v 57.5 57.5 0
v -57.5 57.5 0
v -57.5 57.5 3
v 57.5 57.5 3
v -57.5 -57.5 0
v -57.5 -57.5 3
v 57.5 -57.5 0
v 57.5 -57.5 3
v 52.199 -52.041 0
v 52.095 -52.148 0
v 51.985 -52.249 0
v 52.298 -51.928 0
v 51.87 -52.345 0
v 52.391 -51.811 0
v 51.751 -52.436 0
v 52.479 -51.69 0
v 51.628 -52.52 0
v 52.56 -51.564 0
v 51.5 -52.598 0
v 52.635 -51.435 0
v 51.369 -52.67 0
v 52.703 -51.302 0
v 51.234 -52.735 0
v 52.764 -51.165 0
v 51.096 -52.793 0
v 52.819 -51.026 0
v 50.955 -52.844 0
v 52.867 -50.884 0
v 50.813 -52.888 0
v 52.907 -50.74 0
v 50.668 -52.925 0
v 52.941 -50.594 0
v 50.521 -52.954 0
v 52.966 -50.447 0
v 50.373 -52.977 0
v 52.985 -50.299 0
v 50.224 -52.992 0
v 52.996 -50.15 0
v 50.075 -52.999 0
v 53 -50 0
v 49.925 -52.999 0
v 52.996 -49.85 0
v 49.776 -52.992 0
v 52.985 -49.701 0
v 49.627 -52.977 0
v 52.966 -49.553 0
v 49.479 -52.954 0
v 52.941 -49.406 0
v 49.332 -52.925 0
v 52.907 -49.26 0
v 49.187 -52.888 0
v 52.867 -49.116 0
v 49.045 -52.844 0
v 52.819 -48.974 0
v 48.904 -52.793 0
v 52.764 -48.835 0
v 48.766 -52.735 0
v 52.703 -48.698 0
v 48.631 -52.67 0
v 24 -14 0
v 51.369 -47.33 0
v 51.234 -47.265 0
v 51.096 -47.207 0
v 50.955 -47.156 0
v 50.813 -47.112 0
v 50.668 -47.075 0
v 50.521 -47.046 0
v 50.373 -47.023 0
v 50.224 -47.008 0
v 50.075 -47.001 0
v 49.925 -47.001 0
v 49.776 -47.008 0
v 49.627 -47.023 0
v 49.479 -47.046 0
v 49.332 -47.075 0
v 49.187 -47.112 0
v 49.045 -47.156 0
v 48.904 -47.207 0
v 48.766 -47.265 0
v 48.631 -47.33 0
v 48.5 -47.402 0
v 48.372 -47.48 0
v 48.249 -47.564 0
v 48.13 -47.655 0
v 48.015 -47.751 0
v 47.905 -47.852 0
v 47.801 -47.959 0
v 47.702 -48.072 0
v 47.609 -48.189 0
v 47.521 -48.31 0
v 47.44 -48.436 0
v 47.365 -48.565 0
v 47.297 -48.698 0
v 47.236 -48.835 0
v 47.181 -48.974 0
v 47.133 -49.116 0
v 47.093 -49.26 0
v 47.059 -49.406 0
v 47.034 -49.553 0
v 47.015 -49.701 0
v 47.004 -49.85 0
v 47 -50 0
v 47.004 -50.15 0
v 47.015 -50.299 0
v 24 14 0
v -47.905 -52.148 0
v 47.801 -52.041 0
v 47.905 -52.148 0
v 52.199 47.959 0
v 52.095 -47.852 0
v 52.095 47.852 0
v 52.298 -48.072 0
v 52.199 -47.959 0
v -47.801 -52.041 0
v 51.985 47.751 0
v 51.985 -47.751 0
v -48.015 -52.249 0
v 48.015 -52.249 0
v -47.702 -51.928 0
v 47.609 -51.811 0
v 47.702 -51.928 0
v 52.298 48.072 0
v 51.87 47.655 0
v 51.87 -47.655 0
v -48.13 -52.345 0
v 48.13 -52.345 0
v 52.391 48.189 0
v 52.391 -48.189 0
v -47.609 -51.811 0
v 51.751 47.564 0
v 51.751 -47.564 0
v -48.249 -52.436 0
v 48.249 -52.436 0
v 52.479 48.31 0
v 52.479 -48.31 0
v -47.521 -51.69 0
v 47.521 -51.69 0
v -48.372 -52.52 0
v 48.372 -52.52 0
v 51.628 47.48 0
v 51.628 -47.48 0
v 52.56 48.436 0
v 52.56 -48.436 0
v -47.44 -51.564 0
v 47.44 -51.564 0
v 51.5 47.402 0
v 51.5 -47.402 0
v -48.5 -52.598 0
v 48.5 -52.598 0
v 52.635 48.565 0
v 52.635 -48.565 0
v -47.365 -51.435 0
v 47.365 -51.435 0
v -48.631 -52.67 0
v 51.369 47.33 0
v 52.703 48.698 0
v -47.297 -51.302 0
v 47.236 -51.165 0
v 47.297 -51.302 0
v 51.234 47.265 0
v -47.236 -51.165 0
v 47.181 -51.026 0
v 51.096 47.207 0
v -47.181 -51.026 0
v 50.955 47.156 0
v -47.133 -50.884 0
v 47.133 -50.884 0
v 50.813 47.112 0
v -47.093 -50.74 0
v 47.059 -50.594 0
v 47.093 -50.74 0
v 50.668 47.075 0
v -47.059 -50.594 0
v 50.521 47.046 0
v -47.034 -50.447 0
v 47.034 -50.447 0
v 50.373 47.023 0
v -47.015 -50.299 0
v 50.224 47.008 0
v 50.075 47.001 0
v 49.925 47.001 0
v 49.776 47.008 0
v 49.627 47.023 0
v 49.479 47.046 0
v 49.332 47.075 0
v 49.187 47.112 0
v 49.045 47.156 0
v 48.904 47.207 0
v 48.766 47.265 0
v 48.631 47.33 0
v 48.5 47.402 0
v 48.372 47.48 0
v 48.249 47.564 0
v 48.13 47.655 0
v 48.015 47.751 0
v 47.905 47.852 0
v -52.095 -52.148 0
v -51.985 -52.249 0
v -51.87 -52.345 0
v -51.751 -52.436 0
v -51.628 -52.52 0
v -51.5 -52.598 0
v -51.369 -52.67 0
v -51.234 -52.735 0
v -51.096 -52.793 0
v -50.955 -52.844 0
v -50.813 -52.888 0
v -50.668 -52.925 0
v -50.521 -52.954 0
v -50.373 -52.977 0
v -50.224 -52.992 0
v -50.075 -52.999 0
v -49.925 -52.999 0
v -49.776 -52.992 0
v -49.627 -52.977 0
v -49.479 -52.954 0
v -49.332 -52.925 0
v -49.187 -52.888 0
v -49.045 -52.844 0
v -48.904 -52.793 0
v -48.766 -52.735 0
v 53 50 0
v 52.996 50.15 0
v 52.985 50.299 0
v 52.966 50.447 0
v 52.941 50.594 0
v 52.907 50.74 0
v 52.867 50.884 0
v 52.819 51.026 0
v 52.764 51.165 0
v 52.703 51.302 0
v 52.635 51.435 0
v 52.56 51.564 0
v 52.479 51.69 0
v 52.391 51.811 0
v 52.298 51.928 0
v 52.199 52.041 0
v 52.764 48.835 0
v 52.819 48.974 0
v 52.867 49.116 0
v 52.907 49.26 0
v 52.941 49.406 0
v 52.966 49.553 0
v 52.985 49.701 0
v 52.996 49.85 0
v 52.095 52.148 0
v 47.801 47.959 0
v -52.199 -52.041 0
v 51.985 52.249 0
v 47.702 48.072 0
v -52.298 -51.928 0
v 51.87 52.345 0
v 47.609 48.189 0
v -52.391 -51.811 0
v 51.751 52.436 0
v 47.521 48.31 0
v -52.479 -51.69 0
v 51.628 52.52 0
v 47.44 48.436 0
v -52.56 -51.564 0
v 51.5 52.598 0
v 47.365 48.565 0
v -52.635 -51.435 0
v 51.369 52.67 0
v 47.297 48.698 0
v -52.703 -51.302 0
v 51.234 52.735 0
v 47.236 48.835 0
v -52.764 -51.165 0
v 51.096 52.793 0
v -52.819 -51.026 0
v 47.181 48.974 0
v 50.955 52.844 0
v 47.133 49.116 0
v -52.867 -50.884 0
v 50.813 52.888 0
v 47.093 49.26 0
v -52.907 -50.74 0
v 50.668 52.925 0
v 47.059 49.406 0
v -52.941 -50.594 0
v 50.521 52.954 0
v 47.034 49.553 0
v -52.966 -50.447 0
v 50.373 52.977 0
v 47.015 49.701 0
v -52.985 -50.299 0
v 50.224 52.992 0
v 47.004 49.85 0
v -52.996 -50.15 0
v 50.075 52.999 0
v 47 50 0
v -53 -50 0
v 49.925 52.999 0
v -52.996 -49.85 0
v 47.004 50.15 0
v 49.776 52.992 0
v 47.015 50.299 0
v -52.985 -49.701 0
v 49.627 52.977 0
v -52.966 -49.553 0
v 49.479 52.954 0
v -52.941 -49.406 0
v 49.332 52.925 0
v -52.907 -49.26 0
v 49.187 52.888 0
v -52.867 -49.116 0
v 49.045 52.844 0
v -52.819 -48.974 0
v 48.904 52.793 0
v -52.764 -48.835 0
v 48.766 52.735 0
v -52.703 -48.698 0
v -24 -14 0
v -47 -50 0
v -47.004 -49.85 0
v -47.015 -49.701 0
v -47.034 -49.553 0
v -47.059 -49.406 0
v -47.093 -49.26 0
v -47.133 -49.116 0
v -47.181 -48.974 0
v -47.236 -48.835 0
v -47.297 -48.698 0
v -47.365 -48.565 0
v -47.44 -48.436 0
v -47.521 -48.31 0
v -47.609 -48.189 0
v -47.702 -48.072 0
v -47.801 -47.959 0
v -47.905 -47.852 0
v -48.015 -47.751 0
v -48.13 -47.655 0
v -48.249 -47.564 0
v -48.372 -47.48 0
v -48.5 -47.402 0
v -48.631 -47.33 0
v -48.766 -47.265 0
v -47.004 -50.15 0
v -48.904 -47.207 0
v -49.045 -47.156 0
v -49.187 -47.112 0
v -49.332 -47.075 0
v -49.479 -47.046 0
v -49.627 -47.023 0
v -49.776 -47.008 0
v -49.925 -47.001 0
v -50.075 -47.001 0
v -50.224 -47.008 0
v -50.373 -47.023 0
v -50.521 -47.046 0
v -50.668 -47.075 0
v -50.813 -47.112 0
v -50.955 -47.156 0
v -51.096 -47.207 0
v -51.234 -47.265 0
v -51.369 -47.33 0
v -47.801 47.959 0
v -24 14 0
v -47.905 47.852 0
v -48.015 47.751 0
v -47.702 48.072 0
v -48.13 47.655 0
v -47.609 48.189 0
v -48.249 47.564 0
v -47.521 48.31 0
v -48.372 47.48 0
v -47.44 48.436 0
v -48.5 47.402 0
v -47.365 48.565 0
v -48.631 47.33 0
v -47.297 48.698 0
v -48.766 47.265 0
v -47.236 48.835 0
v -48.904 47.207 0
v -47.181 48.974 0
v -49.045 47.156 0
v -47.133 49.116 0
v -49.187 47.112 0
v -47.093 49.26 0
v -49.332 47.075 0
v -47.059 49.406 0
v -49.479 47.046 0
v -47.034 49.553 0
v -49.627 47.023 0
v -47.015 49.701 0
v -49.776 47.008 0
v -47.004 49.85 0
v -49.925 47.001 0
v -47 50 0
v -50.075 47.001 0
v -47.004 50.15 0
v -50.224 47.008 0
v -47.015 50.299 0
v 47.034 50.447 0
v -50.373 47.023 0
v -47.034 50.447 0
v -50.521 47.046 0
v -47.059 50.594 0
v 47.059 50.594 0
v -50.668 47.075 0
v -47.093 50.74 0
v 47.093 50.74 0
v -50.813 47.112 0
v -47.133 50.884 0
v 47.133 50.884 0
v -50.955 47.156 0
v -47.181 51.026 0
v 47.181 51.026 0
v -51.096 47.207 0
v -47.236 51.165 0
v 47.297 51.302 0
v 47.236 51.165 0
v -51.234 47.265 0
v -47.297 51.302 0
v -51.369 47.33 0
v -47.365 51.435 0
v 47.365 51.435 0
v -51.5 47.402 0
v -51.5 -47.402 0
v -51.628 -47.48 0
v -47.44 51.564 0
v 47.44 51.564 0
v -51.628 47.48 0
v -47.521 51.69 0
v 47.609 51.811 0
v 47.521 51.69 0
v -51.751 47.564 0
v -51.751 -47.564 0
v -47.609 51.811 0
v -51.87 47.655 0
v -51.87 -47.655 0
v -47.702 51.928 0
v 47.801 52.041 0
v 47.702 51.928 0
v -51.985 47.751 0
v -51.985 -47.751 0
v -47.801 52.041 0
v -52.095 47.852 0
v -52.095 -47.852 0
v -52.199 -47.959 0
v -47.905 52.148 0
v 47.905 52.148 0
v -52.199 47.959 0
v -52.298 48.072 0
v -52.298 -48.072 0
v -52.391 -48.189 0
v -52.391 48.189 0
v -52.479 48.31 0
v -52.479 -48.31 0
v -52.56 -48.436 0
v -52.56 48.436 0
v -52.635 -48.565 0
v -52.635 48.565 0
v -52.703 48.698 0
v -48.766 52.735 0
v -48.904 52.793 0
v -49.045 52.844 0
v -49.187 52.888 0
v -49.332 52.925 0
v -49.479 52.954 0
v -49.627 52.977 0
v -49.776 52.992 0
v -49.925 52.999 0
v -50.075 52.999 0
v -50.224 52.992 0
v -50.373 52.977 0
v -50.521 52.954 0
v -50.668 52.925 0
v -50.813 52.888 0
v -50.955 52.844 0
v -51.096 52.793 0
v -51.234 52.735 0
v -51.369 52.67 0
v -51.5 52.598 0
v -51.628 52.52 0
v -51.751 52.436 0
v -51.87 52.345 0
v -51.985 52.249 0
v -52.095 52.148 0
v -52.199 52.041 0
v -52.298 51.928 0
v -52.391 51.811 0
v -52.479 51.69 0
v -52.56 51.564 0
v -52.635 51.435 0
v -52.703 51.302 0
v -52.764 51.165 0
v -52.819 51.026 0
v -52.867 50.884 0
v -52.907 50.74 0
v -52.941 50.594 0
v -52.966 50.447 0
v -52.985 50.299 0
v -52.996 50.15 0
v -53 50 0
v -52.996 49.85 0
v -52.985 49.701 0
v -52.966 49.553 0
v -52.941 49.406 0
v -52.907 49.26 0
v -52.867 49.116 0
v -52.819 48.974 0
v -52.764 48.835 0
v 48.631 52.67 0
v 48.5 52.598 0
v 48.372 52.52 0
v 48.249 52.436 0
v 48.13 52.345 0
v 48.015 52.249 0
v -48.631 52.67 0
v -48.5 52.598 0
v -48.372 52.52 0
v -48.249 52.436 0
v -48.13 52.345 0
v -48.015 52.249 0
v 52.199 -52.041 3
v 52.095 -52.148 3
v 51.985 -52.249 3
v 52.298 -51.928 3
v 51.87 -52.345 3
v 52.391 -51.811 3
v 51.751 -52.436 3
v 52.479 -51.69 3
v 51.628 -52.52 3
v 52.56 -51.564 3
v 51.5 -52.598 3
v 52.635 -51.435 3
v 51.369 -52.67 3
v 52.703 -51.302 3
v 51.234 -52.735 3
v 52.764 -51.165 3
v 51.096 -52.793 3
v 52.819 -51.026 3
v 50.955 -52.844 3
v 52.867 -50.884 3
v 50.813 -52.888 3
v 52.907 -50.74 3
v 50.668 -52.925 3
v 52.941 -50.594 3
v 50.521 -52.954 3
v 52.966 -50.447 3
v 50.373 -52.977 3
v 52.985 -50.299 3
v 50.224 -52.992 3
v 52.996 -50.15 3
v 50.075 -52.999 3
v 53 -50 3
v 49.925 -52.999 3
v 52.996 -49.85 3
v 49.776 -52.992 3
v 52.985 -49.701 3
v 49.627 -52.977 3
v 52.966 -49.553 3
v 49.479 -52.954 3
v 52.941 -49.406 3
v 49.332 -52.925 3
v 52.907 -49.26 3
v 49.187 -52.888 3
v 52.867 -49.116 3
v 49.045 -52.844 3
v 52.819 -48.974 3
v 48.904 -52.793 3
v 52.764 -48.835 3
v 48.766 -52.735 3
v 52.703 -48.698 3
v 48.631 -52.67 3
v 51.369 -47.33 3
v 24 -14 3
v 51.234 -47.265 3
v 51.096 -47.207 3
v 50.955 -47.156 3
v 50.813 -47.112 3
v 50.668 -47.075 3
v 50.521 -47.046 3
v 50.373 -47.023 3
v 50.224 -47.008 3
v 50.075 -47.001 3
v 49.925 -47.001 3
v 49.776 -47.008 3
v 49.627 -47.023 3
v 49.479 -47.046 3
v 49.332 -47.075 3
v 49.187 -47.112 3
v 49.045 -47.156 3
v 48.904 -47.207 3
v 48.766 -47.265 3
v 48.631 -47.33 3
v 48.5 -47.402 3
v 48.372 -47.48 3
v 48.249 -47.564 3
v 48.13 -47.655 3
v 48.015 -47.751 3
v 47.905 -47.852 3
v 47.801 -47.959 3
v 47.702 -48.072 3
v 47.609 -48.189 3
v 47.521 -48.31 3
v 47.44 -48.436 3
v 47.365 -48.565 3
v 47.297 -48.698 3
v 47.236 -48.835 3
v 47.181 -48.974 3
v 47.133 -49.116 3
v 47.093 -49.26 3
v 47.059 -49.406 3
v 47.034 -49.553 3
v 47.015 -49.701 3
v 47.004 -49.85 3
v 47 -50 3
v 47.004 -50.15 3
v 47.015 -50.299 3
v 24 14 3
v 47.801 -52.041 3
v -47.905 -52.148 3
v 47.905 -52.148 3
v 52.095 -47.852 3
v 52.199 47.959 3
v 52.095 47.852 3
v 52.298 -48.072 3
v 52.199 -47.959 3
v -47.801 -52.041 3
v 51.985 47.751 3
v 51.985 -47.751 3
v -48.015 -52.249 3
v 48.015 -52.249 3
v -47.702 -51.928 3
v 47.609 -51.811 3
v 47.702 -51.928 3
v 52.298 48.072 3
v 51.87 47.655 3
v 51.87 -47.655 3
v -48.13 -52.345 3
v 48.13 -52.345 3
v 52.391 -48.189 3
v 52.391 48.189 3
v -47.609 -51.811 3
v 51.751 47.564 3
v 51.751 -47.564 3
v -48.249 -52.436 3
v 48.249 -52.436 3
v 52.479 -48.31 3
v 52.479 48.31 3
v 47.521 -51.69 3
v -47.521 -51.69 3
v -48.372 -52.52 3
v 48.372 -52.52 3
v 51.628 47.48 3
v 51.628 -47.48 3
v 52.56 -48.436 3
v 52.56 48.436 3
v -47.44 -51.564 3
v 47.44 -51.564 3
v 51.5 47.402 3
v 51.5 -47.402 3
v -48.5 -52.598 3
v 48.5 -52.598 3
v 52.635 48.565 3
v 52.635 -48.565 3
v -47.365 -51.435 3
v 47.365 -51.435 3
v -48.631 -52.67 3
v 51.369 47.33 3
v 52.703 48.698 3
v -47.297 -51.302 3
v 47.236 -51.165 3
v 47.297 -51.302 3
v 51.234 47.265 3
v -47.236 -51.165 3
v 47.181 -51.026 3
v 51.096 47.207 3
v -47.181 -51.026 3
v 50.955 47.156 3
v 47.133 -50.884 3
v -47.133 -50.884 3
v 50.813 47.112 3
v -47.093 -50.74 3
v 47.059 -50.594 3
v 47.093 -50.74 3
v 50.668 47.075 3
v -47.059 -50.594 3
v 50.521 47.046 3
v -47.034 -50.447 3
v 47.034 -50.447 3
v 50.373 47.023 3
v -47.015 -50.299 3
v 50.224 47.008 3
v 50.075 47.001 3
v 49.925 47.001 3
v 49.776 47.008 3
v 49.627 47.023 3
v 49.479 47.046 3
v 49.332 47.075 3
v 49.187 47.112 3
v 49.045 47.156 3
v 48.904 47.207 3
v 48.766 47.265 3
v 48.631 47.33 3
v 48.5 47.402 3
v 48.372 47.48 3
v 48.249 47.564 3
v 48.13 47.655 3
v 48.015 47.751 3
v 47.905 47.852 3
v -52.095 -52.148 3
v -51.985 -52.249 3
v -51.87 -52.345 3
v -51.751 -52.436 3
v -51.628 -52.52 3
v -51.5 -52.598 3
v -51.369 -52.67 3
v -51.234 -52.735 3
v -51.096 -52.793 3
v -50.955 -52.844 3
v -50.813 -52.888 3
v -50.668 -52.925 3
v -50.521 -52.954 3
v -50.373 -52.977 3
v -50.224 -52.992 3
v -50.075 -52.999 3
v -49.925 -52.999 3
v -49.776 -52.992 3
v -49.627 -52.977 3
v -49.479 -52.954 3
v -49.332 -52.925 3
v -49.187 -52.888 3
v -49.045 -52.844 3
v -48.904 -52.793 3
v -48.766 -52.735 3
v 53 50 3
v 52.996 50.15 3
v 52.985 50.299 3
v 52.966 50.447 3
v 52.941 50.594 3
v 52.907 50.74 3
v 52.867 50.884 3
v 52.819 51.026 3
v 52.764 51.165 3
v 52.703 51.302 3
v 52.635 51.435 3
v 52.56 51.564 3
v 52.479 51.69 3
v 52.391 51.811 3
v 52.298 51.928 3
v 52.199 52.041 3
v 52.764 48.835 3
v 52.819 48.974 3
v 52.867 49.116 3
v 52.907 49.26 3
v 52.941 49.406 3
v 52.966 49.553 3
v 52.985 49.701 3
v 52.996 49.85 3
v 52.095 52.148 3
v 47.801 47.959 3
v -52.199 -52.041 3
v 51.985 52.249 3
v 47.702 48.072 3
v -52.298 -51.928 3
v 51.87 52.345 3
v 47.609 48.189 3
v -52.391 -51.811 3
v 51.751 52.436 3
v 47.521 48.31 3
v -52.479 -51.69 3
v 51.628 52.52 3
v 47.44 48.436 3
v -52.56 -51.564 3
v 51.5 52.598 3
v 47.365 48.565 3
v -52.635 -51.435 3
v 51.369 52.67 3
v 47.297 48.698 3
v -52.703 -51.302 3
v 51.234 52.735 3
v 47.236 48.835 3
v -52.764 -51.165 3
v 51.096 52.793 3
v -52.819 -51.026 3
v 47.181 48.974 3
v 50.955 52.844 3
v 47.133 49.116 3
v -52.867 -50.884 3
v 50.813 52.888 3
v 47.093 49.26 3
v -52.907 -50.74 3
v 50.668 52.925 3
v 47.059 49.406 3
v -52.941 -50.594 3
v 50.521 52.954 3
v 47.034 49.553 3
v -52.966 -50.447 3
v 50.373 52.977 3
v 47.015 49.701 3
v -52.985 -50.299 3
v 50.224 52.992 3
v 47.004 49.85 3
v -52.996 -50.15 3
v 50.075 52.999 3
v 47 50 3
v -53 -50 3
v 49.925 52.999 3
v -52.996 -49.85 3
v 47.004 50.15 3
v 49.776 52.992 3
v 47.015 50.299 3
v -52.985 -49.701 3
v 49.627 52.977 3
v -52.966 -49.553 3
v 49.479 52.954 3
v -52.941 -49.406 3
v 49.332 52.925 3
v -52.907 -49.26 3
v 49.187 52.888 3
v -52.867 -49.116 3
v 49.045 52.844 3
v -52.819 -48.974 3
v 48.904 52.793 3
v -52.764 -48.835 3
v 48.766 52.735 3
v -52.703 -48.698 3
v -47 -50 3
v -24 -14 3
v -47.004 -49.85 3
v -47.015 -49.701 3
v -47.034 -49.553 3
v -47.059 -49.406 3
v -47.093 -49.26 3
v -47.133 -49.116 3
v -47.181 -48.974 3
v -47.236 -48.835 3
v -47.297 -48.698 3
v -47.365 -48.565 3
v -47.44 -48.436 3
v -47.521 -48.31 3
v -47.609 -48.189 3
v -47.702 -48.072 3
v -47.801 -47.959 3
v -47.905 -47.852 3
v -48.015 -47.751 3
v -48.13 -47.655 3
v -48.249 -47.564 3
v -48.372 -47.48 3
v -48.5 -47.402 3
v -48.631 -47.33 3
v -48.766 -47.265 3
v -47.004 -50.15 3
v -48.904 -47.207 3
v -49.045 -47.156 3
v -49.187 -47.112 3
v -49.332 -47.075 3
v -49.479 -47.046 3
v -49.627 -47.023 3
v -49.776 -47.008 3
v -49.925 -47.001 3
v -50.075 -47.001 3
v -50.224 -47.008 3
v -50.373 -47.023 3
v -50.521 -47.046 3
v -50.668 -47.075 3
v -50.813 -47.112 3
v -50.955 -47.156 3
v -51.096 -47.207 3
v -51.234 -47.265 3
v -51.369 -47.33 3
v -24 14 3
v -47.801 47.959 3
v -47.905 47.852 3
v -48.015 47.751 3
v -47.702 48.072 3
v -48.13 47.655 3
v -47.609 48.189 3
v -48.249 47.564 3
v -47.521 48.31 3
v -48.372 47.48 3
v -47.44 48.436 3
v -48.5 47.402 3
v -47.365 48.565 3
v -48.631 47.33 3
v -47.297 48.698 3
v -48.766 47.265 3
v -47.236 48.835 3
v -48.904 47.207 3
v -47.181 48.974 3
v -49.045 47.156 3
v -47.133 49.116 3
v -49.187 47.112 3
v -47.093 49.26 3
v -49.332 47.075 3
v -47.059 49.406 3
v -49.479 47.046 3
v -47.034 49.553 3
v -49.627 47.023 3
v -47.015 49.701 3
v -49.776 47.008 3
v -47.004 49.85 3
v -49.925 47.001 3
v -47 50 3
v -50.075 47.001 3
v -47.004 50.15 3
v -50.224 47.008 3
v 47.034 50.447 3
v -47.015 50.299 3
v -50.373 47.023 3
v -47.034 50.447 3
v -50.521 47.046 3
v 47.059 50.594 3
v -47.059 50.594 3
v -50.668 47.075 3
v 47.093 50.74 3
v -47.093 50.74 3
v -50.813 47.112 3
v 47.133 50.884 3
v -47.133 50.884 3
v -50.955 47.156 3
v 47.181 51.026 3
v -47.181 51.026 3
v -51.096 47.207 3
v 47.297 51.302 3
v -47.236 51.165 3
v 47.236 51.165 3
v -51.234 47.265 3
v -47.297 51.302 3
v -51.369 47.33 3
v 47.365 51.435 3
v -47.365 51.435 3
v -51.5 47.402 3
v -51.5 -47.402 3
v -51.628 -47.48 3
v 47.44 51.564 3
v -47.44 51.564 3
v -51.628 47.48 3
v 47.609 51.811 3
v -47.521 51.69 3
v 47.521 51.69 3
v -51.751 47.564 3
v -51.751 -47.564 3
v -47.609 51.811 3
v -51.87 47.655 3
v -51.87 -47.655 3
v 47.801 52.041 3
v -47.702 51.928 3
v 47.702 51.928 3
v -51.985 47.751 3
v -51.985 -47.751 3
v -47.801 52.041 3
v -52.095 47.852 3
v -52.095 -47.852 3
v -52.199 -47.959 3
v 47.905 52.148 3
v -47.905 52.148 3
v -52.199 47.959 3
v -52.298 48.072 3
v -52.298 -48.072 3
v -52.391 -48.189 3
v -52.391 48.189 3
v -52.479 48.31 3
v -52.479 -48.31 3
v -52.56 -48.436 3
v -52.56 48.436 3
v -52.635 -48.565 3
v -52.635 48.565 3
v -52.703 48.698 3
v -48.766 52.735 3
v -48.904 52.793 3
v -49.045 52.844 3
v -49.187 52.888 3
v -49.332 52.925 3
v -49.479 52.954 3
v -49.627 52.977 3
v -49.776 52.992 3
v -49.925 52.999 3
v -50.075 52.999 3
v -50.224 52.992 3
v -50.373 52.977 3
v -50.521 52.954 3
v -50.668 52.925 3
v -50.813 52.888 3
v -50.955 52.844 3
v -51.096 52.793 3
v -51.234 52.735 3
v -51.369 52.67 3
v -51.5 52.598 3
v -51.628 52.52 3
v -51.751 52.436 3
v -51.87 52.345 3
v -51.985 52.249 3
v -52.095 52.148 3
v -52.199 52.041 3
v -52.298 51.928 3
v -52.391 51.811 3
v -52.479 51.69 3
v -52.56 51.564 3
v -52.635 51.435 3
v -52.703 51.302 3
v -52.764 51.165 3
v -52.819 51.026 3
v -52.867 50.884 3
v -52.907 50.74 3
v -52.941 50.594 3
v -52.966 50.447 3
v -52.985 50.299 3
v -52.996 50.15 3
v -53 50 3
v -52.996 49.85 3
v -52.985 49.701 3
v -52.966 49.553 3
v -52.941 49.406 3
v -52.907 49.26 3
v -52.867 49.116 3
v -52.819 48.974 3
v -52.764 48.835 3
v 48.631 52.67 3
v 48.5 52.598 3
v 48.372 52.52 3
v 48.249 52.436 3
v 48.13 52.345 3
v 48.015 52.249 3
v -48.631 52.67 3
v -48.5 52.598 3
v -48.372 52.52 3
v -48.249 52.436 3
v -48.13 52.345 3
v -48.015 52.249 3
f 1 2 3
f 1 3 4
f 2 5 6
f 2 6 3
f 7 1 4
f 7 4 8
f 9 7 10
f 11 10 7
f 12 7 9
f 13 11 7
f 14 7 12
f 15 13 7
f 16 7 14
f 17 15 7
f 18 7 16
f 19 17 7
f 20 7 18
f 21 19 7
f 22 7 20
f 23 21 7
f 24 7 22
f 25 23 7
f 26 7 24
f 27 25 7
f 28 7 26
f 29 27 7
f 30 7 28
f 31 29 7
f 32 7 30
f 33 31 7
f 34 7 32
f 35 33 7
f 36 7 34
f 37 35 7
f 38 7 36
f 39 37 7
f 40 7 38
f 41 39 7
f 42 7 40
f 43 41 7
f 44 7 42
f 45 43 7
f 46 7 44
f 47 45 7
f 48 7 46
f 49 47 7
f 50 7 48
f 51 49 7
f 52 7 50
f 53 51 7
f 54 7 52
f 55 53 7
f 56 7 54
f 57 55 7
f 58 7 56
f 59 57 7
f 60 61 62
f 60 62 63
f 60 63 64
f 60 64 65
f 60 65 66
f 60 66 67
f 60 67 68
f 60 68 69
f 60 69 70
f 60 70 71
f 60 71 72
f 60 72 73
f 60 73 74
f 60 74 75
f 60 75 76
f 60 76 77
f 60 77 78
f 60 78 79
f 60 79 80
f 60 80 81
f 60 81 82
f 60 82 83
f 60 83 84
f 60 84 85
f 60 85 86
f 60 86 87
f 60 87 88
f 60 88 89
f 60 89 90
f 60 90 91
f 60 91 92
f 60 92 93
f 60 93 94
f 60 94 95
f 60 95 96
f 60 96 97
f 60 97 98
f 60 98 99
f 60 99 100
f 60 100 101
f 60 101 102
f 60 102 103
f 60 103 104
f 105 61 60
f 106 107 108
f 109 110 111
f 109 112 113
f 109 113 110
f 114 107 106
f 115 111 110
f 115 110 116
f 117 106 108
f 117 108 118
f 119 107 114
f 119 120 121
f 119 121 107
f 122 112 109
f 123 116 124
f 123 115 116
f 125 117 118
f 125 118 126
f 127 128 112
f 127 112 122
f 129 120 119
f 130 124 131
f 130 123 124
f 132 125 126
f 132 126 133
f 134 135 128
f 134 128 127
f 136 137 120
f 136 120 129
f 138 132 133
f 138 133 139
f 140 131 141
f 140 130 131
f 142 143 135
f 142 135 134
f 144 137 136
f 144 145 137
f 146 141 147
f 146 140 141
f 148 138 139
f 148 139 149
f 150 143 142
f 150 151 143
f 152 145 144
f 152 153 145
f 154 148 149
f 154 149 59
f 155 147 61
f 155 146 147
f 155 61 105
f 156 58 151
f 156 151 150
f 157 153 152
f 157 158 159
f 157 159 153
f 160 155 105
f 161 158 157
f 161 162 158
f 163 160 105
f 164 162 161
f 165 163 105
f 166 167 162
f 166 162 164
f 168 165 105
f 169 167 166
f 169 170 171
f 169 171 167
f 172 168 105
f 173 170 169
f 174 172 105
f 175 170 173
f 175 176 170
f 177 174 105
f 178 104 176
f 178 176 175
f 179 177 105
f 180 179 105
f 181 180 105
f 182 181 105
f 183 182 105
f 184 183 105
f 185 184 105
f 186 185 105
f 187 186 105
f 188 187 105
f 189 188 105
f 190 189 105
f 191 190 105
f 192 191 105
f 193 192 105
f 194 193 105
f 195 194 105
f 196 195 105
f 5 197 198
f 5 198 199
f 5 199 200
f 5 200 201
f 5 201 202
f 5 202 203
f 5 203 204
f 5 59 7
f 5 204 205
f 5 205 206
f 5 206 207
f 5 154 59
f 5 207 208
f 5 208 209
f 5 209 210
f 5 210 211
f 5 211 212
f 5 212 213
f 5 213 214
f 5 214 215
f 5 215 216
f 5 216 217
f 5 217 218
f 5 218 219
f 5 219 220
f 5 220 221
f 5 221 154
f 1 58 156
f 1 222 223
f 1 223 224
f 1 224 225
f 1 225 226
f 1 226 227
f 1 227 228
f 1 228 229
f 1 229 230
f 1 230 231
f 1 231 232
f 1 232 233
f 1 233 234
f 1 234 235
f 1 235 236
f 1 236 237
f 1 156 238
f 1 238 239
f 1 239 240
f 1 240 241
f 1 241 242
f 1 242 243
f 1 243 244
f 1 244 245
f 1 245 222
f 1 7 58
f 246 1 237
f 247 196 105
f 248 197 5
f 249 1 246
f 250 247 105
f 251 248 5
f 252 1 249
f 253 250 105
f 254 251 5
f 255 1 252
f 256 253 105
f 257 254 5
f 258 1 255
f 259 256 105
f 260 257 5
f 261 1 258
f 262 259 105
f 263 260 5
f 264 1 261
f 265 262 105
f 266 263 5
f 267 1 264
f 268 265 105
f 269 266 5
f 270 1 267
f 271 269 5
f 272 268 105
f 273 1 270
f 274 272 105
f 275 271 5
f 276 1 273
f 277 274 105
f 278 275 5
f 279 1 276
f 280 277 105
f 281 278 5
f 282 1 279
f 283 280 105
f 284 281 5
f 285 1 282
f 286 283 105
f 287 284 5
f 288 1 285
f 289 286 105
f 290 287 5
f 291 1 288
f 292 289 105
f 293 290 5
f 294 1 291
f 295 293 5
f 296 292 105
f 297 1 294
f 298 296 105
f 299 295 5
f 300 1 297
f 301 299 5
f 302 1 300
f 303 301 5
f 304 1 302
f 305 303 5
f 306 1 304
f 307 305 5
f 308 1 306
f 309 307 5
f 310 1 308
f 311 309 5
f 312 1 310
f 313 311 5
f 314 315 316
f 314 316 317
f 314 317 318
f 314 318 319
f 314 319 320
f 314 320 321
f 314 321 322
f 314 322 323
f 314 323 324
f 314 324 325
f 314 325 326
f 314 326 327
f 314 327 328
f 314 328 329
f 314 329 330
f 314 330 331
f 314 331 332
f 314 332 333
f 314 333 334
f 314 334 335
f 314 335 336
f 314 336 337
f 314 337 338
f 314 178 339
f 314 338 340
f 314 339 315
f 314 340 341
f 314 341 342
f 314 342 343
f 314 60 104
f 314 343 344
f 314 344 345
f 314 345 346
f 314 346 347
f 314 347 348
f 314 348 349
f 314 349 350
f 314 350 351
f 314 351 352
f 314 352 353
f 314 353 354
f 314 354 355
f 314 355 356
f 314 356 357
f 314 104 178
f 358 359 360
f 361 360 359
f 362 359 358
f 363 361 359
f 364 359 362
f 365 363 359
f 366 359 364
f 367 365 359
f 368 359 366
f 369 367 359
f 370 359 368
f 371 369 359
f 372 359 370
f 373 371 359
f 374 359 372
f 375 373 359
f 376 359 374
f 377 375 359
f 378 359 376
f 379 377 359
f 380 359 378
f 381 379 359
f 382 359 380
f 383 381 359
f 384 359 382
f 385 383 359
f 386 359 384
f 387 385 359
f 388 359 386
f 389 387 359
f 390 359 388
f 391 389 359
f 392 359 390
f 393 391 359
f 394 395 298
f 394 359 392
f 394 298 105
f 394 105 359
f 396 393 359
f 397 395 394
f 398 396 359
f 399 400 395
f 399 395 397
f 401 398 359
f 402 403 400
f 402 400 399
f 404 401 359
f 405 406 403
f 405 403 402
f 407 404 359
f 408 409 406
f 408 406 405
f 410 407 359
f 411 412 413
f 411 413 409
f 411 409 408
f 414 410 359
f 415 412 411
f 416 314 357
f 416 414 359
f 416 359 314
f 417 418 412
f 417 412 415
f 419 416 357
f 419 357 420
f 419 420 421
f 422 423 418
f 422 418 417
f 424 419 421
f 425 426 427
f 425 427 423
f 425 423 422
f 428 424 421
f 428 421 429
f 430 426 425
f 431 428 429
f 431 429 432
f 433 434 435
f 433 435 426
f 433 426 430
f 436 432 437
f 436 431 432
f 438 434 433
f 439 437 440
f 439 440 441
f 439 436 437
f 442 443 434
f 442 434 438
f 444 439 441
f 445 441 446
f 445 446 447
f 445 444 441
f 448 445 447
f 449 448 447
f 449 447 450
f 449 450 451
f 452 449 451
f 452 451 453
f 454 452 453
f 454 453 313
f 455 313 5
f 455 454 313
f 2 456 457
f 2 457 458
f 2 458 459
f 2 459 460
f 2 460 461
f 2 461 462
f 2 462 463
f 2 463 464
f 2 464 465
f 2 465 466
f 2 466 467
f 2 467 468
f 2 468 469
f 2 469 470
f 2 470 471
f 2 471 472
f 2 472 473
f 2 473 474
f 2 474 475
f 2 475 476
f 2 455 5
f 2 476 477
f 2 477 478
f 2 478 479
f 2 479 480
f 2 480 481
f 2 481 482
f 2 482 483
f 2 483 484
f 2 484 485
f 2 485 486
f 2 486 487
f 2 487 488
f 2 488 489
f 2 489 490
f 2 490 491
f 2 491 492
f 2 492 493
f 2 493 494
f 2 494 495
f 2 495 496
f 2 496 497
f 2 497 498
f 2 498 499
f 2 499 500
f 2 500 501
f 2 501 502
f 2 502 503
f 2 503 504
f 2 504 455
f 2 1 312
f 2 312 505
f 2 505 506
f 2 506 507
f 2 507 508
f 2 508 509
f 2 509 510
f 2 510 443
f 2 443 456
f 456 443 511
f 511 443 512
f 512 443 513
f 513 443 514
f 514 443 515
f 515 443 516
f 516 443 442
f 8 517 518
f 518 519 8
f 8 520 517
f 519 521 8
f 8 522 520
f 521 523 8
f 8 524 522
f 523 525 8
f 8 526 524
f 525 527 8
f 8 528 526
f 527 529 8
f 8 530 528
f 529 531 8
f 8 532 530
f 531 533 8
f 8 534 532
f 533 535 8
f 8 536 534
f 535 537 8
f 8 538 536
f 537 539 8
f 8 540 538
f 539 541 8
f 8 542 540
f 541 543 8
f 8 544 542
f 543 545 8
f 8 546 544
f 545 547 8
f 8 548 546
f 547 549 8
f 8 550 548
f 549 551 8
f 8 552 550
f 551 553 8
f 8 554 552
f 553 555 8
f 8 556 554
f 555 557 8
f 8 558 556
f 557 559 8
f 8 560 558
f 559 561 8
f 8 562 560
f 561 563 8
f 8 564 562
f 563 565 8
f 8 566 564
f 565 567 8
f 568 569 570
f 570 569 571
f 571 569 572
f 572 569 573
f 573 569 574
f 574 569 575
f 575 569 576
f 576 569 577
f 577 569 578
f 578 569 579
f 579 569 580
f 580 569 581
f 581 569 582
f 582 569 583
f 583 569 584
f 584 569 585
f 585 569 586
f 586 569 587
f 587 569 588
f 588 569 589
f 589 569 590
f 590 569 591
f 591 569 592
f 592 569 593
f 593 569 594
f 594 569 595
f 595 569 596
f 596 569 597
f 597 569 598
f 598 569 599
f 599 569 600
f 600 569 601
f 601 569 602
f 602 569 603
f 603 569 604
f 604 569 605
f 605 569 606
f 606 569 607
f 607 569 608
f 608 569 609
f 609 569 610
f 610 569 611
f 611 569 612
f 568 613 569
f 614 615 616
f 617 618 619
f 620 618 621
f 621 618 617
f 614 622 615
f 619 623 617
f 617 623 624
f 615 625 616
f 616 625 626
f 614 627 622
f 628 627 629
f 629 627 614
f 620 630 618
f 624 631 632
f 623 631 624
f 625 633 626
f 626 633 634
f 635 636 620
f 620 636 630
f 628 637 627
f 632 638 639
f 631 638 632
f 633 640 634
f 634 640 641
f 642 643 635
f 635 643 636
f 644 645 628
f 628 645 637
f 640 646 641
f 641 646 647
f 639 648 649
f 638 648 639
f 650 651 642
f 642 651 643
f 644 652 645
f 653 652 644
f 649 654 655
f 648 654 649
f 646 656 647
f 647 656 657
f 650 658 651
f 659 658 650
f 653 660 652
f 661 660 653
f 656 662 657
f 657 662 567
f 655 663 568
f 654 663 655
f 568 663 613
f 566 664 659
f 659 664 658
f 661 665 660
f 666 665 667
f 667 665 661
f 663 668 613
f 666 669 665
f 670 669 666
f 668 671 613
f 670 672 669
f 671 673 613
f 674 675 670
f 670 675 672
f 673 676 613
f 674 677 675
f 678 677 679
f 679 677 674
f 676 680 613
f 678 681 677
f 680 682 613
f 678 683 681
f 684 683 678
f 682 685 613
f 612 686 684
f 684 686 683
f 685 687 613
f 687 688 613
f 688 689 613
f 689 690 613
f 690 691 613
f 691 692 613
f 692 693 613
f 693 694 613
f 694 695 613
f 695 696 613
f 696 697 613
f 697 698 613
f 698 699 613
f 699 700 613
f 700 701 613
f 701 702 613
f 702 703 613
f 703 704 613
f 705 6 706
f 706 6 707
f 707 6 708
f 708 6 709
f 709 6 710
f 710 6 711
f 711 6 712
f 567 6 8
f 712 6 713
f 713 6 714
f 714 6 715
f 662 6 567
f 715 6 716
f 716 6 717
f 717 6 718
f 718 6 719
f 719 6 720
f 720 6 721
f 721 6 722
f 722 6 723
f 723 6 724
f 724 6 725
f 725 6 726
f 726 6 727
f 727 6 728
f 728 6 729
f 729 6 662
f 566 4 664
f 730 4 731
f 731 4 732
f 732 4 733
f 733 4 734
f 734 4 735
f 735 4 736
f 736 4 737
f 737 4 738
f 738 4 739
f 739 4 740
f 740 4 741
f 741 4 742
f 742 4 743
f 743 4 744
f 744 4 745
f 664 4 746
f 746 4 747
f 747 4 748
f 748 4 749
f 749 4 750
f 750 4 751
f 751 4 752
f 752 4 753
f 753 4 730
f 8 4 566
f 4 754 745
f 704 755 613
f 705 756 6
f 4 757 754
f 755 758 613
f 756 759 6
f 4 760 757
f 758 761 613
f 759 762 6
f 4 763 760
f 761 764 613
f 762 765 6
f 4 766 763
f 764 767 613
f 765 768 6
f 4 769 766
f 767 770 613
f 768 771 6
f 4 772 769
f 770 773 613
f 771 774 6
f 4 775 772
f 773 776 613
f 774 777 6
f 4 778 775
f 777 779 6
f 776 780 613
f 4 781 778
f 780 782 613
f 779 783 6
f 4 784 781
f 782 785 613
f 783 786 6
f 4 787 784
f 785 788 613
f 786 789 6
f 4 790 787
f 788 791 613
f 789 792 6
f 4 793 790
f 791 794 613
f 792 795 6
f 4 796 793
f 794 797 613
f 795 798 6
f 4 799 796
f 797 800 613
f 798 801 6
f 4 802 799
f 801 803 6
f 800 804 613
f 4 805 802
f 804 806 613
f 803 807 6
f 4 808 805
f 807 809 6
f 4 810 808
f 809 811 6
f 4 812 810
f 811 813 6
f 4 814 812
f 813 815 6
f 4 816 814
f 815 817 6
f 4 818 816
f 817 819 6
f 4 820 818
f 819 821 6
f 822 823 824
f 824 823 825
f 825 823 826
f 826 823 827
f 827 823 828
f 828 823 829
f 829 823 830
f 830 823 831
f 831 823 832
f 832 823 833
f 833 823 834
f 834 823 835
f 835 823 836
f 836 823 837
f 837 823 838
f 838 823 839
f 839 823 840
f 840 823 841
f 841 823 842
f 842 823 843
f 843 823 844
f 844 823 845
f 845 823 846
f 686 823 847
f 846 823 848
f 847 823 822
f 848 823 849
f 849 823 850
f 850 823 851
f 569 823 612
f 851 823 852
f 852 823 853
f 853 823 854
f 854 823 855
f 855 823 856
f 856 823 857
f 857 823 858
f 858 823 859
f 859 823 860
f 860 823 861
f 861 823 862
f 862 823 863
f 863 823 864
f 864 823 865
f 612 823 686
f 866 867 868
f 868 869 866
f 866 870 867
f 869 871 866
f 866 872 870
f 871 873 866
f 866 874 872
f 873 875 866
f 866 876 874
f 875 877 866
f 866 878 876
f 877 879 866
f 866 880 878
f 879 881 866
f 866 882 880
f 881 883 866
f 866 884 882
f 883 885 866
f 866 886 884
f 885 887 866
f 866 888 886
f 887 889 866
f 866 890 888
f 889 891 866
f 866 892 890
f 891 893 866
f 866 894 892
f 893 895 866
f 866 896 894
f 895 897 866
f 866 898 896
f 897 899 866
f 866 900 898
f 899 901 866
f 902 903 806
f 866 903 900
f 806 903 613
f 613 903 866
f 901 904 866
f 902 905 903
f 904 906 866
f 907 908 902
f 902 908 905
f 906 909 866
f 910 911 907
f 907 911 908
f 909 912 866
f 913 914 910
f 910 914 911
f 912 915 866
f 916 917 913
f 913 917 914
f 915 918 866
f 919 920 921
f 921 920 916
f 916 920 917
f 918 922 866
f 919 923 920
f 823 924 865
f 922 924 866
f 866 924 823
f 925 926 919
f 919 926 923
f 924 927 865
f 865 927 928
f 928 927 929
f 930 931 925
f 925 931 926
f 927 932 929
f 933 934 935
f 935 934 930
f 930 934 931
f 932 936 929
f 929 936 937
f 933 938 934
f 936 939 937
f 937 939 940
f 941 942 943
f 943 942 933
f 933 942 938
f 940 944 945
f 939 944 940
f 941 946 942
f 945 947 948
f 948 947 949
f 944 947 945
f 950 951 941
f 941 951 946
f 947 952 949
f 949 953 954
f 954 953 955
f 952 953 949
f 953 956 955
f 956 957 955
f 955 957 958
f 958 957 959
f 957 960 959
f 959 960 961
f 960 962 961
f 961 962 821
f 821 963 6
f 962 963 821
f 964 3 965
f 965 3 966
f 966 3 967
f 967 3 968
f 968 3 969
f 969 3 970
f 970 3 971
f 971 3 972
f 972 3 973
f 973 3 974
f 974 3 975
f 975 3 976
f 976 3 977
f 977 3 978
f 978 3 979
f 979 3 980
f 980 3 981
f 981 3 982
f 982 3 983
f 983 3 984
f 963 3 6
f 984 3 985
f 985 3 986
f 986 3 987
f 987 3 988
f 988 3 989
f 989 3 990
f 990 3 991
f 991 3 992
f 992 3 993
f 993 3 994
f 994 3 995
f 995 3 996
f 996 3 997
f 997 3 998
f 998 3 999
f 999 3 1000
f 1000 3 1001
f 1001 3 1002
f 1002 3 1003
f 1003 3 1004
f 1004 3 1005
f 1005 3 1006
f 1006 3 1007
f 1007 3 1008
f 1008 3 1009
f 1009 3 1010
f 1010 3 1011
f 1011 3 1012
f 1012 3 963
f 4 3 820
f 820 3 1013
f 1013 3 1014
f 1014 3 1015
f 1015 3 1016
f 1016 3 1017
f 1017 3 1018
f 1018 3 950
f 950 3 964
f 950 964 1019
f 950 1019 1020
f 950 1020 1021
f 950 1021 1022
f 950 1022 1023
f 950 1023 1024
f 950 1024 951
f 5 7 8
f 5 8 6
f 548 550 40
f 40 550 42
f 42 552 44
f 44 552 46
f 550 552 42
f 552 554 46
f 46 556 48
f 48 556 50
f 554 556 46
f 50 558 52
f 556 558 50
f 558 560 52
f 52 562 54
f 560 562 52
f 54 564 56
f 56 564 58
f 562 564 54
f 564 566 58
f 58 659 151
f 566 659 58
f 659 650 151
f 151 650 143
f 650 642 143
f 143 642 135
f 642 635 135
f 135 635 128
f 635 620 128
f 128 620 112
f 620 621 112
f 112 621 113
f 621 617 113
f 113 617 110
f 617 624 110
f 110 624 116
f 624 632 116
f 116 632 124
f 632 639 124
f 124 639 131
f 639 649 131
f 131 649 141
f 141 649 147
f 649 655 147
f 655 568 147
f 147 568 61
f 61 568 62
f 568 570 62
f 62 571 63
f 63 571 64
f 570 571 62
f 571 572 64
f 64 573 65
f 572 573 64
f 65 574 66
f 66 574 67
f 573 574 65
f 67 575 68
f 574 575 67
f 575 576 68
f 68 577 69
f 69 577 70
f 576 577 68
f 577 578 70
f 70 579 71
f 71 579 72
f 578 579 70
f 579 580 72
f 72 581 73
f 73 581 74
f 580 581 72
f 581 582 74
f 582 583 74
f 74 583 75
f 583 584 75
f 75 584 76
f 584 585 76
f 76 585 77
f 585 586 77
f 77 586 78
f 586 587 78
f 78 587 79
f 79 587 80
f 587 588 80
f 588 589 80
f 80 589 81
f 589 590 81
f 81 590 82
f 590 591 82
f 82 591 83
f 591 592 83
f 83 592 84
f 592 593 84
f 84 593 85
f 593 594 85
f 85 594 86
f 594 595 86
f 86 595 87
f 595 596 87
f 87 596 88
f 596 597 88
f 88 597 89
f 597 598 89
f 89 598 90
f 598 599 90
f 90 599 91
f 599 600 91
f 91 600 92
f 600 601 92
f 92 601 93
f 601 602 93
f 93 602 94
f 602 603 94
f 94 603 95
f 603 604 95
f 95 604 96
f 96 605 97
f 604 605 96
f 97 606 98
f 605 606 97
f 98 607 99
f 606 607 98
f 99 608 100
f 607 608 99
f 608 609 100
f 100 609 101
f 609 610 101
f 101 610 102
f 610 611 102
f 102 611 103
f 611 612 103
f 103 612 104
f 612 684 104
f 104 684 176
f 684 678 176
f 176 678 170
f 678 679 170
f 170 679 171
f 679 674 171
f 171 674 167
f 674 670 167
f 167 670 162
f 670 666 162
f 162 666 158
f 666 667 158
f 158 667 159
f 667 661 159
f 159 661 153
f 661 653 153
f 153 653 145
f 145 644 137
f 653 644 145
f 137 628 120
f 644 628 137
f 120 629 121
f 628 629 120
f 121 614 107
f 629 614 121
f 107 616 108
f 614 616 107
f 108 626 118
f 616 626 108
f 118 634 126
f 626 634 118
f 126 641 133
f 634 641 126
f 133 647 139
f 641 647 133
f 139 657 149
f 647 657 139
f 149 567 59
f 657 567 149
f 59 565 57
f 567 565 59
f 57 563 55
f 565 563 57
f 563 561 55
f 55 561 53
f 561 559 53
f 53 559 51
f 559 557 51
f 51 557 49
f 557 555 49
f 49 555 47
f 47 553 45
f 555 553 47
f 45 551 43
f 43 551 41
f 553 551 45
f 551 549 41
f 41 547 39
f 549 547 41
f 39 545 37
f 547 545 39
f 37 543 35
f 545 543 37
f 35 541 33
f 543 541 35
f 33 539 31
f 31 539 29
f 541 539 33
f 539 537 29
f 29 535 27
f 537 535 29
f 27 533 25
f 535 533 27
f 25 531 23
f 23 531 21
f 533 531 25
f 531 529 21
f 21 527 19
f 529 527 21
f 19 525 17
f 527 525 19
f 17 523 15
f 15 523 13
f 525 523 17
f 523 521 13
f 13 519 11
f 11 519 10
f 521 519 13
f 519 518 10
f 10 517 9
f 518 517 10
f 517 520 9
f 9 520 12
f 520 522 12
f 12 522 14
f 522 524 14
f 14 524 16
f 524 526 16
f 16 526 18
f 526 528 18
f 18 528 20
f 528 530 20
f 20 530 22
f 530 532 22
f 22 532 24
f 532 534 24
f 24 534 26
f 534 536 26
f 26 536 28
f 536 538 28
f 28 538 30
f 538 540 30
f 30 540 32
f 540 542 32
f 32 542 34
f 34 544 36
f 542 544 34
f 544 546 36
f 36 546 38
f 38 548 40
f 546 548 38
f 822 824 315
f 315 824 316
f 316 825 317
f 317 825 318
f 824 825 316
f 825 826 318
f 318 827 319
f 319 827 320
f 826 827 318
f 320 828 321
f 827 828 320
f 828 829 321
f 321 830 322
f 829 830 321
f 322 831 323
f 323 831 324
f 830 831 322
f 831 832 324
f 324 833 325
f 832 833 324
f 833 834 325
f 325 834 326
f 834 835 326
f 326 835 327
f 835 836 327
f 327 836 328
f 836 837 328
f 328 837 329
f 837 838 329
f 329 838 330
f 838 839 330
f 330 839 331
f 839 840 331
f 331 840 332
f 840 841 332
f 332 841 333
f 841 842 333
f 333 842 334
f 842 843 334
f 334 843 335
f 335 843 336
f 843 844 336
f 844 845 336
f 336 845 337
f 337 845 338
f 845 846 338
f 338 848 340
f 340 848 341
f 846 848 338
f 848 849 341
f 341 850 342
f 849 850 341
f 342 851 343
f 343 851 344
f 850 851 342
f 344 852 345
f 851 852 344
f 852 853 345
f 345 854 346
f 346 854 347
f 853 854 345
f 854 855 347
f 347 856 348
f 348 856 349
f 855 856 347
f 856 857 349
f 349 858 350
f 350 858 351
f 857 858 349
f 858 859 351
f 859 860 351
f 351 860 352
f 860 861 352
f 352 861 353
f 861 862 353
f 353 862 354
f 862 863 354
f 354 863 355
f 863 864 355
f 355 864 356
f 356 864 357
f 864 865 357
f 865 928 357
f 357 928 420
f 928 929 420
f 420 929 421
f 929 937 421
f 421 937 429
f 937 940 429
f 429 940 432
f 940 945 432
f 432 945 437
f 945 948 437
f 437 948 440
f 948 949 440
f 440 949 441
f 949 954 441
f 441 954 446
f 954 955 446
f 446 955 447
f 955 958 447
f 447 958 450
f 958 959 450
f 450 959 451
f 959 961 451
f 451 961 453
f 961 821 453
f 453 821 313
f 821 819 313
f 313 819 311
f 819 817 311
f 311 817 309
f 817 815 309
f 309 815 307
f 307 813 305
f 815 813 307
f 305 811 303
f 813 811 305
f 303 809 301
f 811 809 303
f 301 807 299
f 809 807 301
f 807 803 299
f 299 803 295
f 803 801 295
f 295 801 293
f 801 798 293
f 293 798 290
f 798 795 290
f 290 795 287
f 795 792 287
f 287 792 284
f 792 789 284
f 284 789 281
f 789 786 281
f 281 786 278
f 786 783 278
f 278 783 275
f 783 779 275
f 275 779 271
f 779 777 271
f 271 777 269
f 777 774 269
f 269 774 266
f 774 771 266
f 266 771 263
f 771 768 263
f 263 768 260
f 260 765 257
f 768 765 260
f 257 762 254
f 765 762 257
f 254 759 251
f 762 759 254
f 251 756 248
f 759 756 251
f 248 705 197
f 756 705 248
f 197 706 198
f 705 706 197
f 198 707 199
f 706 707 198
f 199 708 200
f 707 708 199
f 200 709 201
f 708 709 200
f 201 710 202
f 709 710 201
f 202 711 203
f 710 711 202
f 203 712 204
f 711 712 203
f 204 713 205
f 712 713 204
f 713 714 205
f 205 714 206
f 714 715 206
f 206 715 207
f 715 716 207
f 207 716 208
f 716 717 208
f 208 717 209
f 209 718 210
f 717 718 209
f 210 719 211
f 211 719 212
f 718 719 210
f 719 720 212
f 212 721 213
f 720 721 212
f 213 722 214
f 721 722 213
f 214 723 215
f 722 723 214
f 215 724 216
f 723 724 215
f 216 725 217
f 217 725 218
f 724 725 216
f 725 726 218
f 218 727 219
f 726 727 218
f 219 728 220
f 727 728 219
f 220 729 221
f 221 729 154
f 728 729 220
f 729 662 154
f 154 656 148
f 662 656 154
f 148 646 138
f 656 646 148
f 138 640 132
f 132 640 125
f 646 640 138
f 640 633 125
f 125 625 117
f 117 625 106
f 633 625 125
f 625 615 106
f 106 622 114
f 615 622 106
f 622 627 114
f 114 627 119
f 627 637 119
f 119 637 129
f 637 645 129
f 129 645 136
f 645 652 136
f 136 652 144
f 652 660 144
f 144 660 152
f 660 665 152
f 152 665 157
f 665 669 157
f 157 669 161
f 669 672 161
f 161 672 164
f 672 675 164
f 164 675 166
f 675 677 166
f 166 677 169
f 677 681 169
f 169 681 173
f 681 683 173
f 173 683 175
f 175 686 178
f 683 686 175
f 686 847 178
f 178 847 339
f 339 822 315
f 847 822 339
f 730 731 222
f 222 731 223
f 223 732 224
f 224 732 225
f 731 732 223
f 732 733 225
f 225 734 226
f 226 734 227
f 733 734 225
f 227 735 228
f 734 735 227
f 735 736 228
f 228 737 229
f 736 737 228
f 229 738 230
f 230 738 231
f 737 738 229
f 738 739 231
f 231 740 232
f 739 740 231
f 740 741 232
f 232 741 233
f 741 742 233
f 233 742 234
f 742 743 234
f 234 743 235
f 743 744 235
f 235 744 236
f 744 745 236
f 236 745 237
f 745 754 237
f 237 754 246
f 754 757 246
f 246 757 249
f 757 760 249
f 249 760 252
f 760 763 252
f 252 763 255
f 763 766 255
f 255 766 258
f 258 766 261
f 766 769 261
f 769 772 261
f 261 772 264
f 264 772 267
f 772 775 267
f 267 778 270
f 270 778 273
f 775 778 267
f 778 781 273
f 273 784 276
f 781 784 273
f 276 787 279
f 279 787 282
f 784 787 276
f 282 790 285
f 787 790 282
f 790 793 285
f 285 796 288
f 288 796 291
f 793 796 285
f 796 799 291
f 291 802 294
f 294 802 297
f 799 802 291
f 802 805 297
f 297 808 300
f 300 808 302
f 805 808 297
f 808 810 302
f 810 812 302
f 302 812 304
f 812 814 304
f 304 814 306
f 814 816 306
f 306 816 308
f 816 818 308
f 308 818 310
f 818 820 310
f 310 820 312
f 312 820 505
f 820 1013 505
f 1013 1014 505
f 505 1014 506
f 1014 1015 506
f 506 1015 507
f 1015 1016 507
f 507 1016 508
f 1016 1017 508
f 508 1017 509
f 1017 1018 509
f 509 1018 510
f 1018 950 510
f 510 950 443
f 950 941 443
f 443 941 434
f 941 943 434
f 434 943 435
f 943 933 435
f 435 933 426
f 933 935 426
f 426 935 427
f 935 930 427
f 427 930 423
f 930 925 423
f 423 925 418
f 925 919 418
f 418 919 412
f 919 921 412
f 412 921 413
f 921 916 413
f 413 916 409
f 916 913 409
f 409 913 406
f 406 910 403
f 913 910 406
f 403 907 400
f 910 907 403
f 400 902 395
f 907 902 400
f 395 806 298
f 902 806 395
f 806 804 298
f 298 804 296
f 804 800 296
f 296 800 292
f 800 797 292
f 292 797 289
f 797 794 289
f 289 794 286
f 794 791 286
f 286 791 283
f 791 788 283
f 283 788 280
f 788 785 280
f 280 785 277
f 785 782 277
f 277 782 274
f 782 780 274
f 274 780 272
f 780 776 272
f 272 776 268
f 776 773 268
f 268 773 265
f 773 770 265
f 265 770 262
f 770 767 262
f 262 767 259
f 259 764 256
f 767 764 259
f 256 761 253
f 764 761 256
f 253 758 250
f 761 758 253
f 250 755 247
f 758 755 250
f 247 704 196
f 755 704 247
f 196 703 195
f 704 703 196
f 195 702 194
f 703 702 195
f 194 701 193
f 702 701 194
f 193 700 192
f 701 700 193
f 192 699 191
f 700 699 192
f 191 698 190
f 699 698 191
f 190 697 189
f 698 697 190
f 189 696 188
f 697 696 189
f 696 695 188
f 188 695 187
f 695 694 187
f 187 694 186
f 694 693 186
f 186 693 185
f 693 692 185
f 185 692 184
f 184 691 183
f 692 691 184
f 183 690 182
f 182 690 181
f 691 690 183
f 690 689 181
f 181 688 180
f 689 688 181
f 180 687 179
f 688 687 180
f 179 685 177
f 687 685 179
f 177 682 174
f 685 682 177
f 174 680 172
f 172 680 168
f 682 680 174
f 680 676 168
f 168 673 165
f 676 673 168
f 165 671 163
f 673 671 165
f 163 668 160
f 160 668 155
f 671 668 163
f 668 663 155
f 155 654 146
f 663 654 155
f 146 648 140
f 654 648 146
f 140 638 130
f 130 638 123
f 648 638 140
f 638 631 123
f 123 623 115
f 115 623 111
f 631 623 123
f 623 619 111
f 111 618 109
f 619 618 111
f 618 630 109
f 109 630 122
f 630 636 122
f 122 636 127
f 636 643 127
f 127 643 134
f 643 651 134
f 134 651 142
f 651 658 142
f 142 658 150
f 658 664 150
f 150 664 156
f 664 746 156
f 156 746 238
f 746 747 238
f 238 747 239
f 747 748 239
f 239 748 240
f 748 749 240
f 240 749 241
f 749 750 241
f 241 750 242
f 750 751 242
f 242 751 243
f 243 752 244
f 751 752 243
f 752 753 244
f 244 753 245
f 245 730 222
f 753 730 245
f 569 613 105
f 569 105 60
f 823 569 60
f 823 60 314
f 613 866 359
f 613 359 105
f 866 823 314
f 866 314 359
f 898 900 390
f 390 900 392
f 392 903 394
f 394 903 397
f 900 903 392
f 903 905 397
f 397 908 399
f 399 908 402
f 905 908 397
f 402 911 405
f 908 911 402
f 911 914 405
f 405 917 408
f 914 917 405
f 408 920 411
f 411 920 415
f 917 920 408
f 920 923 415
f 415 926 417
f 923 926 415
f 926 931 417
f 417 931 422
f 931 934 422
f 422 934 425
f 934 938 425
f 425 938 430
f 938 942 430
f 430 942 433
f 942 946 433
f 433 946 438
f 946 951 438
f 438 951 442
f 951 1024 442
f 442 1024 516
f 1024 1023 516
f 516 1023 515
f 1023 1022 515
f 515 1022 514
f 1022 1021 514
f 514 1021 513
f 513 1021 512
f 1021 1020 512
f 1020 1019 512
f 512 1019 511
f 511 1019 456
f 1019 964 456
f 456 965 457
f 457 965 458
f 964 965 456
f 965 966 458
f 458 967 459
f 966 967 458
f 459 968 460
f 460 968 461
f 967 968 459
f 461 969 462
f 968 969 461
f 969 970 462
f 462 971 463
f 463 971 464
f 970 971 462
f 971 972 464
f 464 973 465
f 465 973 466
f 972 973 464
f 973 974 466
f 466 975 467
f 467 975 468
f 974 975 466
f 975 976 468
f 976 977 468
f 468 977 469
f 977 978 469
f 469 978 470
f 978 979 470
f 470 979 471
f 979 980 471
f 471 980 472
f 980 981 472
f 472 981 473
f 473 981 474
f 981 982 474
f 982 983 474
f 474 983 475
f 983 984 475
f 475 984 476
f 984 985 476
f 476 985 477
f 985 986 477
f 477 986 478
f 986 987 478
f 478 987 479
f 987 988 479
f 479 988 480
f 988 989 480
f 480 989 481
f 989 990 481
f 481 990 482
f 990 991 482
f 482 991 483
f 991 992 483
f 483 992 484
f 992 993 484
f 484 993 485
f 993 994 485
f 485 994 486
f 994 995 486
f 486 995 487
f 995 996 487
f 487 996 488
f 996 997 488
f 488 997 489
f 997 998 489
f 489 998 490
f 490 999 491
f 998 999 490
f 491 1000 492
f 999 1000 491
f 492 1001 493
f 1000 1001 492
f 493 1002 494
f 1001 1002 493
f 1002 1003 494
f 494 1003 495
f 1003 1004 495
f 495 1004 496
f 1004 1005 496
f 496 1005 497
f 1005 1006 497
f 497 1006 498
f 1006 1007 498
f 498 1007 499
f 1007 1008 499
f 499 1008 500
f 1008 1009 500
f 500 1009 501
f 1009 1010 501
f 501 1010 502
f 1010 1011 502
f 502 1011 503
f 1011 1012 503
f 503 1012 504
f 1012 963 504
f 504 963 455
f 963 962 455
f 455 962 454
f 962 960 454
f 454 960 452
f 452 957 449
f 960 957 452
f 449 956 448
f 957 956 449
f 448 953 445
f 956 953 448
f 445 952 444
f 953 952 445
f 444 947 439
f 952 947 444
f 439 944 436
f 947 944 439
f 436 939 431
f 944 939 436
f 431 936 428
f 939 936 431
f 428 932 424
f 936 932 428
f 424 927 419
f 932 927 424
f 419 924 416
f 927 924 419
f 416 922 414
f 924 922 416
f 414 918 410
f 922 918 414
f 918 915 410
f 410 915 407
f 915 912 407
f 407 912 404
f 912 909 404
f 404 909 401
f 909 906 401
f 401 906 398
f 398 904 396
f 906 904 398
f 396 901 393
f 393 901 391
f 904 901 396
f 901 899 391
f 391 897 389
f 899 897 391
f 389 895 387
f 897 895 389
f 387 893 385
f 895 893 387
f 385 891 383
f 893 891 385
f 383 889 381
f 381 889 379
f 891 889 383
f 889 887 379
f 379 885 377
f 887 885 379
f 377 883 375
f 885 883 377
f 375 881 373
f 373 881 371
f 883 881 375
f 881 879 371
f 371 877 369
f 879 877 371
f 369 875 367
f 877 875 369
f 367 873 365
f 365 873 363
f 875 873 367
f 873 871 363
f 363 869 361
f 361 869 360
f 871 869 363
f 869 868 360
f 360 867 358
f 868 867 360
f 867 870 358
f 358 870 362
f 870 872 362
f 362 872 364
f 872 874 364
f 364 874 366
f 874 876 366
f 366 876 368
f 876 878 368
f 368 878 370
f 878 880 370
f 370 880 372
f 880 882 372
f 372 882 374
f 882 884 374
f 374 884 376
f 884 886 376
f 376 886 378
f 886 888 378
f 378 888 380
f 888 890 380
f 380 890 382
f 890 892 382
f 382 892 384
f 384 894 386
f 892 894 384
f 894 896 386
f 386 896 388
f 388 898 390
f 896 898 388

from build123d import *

# Parameters (mm, degrees)
SKETCH_W        = 115
SKETCH_H        = 115
PAD_DEPTH       = 3
SKETCH001_W     = 48
SKETCH001_H     = 28
POCKET_DEPTH    = 5
SKETCH003_R     = 3
POCKET001_DEPTH = 5


with BuildPart() as part:
    # Sketch → Pad (new body)
    with BuildSketch(Plane.XY):
        Rectangle(SKETCH_W, SKETCH_H)
    extrude(amount=PAD_DEPTH)

    # Sketch001 (on Face6 of Pad) → Pocket (cut)
    with BuildSketch(Plane.XY.offset(3)):
        Rectangle(SKETCH001_W, SKETCH001_H)
    extrude(amount=-POCKET_DEPTH, mode=Mode.SUBTRACT)

    # Sketch003 (on Face5 of Pocket) → Pocket001 (cut)
    with BuildSketch(Plane.XY.offset(3)):
        with Locations((50, -50)):
            Circle(SKETCH003_R)
        with Locations((-50, -50)):
            Circle(SKETCH003_R)
        with Locations((-50, 50)):
            Circle(SKETCH003_R)
        with Locations((50, 50)):
            Circle(SKETCH003_R)
    extrude(amount=-POCKET001_DEPTH, mode=Mode.SUBTRACT)


solid = part.part
